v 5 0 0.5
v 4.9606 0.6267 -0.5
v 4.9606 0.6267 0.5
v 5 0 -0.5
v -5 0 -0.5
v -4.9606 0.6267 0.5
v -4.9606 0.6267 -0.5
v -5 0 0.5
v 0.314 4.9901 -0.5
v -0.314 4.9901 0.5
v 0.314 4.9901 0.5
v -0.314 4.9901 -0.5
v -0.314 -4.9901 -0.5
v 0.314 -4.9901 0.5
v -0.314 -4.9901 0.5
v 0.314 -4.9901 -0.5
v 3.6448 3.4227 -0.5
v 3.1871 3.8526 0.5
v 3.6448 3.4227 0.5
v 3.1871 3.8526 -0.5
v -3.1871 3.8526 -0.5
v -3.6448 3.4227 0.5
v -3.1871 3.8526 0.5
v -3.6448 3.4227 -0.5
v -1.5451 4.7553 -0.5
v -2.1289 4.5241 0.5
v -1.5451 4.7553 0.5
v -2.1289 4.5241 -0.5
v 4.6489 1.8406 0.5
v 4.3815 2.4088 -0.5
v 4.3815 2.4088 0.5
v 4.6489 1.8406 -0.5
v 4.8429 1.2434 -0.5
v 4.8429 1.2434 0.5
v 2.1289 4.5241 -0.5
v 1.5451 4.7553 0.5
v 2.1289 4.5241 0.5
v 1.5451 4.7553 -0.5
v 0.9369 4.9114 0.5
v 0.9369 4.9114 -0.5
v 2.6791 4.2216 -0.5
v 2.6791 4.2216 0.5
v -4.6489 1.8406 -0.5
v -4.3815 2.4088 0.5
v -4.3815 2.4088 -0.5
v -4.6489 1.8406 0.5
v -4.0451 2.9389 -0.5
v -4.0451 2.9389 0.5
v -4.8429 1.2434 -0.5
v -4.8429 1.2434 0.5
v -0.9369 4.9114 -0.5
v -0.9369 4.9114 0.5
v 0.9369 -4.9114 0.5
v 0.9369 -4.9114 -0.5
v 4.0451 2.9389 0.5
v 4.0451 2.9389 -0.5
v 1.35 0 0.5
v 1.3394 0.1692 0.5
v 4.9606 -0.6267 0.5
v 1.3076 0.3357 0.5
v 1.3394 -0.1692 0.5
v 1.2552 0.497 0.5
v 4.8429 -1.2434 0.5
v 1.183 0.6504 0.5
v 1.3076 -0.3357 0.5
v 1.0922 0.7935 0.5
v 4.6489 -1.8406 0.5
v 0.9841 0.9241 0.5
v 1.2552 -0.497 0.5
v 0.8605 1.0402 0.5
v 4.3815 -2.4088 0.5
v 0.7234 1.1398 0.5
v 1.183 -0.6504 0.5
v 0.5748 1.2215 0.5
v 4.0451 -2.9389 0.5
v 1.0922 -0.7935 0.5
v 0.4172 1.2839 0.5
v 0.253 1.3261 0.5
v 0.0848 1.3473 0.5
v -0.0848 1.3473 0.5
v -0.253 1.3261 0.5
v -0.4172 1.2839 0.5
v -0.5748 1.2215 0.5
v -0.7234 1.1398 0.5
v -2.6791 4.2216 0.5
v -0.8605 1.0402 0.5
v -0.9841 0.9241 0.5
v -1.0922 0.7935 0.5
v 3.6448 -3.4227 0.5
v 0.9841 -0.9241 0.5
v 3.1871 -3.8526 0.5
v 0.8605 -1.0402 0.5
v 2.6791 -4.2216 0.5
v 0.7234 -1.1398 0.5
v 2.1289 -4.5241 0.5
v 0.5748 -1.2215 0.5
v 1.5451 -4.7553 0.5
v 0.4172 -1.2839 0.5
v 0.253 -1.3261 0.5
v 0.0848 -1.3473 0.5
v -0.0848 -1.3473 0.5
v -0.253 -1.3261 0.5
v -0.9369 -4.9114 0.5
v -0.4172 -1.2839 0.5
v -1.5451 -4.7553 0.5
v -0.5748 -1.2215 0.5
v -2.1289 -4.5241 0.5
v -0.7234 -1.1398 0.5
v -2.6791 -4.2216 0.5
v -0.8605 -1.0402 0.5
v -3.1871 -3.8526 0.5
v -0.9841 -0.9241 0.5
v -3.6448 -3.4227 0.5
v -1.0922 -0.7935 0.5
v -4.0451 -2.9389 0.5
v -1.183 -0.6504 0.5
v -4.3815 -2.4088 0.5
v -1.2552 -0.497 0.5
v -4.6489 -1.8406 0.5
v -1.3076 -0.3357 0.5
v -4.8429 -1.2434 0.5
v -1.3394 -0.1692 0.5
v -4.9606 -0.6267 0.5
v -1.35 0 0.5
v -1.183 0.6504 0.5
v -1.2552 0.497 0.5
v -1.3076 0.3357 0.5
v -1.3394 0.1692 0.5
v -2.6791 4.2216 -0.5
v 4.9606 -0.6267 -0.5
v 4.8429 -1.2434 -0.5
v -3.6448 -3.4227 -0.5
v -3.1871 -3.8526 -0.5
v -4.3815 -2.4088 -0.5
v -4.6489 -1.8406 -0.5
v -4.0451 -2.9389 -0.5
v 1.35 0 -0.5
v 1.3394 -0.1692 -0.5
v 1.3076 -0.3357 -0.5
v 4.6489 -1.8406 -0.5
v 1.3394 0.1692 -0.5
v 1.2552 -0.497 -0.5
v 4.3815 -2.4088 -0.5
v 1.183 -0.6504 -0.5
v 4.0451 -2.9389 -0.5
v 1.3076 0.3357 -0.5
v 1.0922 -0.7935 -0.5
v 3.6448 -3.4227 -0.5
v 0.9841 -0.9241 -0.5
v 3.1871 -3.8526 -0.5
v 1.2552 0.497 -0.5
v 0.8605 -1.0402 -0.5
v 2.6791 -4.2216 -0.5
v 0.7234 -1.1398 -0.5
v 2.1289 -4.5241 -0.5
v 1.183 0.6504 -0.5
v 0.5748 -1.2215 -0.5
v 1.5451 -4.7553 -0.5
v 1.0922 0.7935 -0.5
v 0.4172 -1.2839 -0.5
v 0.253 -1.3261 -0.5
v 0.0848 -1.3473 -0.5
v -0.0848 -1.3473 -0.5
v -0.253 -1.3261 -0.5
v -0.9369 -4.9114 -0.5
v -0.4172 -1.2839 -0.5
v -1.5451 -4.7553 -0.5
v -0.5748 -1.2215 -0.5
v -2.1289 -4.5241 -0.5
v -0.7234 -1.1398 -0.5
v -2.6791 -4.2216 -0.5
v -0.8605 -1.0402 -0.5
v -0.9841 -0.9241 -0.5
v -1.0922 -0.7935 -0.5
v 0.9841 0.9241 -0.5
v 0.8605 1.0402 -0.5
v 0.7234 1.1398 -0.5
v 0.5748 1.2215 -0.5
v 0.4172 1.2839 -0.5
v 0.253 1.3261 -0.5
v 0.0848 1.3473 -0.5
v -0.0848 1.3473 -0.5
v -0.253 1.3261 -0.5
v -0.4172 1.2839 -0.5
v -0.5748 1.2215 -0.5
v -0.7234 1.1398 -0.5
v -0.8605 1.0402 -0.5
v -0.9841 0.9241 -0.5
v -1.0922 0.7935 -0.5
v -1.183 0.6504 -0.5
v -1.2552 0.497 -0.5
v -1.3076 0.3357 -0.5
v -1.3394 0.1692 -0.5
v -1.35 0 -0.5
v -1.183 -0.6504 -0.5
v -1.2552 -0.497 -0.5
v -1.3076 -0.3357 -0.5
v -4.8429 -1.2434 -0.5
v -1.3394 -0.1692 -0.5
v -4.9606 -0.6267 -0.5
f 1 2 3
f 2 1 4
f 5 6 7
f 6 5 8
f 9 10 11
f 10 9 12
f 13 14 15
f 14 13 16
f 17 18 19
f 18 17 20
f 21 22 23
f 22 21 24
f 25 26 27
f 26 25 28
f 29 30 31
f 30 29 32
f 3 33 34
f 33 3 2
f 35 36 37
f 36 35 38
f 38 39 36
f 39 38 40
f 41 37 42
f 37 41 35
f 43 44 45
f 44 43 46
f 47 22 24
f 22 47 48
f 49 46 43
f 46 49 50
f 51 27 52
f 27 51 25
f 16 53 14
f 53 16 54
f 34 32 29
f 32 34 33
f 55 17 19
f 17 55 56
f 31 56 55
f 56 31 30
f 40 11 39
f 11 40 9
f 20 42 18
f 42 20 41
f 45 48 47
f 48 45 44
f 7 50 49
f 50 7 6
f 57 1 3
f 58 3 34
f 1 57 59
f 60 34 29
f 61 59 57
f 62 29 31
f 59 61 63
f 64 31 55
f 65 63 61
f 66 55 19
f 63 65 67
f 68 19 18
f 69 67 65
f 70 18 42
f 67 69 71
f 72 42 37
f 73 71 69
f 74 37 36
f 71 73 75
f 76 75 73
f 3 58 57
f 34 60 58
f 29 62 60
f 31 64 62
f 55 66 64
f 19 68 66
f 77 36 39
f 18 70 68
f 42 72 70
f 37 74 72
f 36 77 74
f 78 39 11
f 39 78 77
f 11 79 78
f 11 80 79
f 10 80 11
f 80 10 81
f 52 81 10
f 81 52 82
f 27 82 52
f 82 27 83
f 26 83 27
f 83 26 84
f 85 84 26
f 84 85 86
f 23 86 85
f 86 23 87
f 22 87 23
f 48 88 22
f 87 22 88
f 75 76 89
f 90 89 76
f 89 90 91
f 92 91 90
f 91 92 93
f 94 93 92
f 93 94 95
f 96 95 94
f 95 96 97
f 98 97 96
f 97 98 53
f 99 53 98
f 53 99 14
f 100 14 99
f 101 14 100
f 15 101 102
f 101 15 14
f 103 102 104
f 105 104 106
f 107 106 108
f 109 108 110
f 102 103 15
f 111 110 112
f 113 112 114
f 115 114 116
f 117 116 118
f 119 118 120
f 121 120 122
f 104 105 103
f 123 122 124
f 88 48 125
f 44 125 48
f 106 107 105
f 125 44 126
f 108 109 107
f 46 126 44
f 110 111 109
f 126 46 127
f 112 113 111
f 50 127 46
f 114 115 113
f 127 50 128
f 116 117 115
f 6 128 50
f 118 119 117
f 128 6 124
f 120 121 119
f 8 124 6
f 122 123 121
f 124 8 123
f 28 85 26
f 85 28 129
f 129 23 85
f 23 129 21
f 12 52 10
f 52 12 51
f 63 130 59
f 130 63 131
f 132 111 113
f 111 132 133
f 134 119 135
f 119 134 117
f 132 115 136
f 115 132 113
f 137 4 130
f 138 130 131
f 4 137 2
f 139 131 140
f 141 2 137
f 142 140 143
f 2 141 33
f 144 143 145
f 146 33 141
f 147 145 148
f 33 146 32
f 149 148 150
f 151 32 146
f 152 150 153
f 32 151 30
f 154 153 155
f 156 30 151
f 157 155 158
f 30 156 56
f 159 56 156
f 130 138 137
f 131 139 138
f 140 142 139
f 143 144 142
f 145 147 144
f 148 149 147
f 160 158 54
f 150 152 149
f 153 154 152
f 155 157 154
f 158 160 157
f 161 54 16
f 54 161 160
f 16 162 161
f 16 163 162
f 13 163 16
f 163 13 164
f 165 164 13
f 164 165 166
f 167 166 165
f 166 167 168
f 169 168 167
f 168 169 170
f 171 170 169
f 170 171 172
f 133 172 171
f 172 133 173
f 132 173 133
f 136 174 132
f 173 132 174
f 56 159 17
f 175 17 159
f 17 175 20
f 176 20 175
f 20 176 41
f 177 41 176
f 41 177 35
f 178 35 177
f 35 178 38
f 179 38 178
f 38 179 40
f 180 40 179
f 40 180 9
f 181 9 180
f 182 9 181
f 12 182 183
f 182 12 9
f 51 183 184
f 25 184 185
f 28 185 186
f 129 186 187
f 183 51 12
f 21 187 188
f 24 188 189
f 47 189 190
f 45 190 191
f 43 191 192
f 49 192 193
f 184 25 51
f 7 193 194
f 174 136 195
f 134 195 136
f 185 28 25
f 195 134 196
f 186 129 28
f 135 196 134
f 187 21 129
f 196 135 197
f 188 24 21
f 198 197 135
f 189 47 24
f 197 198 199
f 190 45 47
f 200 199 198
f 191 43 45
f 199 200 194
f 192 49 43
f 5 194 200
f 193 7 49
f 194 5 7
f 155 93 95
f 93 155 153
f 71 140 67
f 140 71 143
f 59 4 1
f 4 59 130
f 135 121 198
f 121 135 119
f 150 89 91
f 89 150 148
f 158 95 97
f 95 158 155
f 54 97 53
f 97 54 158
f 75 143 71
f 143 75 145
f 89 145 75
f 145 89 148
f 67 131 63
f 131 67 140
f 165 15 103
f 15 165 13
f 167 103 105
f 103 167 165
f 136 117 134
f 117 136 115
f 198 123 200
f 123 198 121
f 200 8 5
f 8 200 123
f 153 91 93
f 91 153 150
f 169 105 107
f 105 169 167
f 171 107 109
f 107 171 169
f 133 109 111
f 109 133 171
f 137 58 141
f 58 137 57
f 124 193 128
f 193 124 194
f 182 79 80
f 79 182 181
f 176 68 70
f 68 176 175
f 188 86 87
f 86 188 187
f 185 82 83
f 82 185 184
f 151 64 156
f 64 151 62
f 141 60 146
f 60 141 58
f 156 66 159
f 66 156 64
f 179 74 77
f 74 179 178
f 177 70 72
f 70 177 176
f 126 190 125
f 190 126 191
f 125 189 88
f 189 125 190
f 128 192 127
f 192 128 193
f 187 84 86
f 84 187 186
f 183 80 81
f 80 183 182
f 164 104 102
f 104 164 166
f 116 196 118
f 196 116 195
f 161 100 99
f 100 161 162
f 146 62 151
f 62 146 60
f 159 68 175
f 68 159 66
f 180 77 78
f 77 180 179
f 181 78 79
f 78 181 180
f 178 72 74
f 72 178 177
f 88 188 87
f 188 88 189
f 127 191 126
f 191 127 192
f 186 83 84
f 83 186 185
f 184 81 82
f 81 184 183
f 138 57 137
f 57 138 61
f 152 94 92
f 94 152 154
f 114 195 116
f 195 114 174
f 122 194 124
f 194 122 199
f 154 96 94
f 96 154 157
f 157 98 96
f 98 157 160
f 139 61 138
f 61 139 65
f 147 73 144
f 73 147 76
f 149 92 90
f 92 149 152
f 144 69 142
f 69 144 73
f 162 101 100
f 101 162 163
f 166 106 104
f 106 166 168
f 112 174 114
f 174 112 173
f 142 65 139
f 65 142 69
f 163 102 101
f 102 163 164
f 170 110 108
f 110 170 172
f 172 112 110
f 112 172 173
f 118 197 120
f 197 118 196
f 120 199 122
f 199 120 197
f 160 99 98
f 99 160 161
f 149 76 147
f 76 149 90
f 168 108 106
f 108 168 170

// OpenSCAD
$fn = 50;


difference() {
	union() {
		translate(v = [0, 0, -0.5000000000]) {
			cylinder(h = 1, r = 5.0000000000);
		}
	}
	union() {
		translate(v = [0, 0, -100.0000000000]) {
			cylinder(h = 200, r = 1.3500000000);
		}
	}
}
